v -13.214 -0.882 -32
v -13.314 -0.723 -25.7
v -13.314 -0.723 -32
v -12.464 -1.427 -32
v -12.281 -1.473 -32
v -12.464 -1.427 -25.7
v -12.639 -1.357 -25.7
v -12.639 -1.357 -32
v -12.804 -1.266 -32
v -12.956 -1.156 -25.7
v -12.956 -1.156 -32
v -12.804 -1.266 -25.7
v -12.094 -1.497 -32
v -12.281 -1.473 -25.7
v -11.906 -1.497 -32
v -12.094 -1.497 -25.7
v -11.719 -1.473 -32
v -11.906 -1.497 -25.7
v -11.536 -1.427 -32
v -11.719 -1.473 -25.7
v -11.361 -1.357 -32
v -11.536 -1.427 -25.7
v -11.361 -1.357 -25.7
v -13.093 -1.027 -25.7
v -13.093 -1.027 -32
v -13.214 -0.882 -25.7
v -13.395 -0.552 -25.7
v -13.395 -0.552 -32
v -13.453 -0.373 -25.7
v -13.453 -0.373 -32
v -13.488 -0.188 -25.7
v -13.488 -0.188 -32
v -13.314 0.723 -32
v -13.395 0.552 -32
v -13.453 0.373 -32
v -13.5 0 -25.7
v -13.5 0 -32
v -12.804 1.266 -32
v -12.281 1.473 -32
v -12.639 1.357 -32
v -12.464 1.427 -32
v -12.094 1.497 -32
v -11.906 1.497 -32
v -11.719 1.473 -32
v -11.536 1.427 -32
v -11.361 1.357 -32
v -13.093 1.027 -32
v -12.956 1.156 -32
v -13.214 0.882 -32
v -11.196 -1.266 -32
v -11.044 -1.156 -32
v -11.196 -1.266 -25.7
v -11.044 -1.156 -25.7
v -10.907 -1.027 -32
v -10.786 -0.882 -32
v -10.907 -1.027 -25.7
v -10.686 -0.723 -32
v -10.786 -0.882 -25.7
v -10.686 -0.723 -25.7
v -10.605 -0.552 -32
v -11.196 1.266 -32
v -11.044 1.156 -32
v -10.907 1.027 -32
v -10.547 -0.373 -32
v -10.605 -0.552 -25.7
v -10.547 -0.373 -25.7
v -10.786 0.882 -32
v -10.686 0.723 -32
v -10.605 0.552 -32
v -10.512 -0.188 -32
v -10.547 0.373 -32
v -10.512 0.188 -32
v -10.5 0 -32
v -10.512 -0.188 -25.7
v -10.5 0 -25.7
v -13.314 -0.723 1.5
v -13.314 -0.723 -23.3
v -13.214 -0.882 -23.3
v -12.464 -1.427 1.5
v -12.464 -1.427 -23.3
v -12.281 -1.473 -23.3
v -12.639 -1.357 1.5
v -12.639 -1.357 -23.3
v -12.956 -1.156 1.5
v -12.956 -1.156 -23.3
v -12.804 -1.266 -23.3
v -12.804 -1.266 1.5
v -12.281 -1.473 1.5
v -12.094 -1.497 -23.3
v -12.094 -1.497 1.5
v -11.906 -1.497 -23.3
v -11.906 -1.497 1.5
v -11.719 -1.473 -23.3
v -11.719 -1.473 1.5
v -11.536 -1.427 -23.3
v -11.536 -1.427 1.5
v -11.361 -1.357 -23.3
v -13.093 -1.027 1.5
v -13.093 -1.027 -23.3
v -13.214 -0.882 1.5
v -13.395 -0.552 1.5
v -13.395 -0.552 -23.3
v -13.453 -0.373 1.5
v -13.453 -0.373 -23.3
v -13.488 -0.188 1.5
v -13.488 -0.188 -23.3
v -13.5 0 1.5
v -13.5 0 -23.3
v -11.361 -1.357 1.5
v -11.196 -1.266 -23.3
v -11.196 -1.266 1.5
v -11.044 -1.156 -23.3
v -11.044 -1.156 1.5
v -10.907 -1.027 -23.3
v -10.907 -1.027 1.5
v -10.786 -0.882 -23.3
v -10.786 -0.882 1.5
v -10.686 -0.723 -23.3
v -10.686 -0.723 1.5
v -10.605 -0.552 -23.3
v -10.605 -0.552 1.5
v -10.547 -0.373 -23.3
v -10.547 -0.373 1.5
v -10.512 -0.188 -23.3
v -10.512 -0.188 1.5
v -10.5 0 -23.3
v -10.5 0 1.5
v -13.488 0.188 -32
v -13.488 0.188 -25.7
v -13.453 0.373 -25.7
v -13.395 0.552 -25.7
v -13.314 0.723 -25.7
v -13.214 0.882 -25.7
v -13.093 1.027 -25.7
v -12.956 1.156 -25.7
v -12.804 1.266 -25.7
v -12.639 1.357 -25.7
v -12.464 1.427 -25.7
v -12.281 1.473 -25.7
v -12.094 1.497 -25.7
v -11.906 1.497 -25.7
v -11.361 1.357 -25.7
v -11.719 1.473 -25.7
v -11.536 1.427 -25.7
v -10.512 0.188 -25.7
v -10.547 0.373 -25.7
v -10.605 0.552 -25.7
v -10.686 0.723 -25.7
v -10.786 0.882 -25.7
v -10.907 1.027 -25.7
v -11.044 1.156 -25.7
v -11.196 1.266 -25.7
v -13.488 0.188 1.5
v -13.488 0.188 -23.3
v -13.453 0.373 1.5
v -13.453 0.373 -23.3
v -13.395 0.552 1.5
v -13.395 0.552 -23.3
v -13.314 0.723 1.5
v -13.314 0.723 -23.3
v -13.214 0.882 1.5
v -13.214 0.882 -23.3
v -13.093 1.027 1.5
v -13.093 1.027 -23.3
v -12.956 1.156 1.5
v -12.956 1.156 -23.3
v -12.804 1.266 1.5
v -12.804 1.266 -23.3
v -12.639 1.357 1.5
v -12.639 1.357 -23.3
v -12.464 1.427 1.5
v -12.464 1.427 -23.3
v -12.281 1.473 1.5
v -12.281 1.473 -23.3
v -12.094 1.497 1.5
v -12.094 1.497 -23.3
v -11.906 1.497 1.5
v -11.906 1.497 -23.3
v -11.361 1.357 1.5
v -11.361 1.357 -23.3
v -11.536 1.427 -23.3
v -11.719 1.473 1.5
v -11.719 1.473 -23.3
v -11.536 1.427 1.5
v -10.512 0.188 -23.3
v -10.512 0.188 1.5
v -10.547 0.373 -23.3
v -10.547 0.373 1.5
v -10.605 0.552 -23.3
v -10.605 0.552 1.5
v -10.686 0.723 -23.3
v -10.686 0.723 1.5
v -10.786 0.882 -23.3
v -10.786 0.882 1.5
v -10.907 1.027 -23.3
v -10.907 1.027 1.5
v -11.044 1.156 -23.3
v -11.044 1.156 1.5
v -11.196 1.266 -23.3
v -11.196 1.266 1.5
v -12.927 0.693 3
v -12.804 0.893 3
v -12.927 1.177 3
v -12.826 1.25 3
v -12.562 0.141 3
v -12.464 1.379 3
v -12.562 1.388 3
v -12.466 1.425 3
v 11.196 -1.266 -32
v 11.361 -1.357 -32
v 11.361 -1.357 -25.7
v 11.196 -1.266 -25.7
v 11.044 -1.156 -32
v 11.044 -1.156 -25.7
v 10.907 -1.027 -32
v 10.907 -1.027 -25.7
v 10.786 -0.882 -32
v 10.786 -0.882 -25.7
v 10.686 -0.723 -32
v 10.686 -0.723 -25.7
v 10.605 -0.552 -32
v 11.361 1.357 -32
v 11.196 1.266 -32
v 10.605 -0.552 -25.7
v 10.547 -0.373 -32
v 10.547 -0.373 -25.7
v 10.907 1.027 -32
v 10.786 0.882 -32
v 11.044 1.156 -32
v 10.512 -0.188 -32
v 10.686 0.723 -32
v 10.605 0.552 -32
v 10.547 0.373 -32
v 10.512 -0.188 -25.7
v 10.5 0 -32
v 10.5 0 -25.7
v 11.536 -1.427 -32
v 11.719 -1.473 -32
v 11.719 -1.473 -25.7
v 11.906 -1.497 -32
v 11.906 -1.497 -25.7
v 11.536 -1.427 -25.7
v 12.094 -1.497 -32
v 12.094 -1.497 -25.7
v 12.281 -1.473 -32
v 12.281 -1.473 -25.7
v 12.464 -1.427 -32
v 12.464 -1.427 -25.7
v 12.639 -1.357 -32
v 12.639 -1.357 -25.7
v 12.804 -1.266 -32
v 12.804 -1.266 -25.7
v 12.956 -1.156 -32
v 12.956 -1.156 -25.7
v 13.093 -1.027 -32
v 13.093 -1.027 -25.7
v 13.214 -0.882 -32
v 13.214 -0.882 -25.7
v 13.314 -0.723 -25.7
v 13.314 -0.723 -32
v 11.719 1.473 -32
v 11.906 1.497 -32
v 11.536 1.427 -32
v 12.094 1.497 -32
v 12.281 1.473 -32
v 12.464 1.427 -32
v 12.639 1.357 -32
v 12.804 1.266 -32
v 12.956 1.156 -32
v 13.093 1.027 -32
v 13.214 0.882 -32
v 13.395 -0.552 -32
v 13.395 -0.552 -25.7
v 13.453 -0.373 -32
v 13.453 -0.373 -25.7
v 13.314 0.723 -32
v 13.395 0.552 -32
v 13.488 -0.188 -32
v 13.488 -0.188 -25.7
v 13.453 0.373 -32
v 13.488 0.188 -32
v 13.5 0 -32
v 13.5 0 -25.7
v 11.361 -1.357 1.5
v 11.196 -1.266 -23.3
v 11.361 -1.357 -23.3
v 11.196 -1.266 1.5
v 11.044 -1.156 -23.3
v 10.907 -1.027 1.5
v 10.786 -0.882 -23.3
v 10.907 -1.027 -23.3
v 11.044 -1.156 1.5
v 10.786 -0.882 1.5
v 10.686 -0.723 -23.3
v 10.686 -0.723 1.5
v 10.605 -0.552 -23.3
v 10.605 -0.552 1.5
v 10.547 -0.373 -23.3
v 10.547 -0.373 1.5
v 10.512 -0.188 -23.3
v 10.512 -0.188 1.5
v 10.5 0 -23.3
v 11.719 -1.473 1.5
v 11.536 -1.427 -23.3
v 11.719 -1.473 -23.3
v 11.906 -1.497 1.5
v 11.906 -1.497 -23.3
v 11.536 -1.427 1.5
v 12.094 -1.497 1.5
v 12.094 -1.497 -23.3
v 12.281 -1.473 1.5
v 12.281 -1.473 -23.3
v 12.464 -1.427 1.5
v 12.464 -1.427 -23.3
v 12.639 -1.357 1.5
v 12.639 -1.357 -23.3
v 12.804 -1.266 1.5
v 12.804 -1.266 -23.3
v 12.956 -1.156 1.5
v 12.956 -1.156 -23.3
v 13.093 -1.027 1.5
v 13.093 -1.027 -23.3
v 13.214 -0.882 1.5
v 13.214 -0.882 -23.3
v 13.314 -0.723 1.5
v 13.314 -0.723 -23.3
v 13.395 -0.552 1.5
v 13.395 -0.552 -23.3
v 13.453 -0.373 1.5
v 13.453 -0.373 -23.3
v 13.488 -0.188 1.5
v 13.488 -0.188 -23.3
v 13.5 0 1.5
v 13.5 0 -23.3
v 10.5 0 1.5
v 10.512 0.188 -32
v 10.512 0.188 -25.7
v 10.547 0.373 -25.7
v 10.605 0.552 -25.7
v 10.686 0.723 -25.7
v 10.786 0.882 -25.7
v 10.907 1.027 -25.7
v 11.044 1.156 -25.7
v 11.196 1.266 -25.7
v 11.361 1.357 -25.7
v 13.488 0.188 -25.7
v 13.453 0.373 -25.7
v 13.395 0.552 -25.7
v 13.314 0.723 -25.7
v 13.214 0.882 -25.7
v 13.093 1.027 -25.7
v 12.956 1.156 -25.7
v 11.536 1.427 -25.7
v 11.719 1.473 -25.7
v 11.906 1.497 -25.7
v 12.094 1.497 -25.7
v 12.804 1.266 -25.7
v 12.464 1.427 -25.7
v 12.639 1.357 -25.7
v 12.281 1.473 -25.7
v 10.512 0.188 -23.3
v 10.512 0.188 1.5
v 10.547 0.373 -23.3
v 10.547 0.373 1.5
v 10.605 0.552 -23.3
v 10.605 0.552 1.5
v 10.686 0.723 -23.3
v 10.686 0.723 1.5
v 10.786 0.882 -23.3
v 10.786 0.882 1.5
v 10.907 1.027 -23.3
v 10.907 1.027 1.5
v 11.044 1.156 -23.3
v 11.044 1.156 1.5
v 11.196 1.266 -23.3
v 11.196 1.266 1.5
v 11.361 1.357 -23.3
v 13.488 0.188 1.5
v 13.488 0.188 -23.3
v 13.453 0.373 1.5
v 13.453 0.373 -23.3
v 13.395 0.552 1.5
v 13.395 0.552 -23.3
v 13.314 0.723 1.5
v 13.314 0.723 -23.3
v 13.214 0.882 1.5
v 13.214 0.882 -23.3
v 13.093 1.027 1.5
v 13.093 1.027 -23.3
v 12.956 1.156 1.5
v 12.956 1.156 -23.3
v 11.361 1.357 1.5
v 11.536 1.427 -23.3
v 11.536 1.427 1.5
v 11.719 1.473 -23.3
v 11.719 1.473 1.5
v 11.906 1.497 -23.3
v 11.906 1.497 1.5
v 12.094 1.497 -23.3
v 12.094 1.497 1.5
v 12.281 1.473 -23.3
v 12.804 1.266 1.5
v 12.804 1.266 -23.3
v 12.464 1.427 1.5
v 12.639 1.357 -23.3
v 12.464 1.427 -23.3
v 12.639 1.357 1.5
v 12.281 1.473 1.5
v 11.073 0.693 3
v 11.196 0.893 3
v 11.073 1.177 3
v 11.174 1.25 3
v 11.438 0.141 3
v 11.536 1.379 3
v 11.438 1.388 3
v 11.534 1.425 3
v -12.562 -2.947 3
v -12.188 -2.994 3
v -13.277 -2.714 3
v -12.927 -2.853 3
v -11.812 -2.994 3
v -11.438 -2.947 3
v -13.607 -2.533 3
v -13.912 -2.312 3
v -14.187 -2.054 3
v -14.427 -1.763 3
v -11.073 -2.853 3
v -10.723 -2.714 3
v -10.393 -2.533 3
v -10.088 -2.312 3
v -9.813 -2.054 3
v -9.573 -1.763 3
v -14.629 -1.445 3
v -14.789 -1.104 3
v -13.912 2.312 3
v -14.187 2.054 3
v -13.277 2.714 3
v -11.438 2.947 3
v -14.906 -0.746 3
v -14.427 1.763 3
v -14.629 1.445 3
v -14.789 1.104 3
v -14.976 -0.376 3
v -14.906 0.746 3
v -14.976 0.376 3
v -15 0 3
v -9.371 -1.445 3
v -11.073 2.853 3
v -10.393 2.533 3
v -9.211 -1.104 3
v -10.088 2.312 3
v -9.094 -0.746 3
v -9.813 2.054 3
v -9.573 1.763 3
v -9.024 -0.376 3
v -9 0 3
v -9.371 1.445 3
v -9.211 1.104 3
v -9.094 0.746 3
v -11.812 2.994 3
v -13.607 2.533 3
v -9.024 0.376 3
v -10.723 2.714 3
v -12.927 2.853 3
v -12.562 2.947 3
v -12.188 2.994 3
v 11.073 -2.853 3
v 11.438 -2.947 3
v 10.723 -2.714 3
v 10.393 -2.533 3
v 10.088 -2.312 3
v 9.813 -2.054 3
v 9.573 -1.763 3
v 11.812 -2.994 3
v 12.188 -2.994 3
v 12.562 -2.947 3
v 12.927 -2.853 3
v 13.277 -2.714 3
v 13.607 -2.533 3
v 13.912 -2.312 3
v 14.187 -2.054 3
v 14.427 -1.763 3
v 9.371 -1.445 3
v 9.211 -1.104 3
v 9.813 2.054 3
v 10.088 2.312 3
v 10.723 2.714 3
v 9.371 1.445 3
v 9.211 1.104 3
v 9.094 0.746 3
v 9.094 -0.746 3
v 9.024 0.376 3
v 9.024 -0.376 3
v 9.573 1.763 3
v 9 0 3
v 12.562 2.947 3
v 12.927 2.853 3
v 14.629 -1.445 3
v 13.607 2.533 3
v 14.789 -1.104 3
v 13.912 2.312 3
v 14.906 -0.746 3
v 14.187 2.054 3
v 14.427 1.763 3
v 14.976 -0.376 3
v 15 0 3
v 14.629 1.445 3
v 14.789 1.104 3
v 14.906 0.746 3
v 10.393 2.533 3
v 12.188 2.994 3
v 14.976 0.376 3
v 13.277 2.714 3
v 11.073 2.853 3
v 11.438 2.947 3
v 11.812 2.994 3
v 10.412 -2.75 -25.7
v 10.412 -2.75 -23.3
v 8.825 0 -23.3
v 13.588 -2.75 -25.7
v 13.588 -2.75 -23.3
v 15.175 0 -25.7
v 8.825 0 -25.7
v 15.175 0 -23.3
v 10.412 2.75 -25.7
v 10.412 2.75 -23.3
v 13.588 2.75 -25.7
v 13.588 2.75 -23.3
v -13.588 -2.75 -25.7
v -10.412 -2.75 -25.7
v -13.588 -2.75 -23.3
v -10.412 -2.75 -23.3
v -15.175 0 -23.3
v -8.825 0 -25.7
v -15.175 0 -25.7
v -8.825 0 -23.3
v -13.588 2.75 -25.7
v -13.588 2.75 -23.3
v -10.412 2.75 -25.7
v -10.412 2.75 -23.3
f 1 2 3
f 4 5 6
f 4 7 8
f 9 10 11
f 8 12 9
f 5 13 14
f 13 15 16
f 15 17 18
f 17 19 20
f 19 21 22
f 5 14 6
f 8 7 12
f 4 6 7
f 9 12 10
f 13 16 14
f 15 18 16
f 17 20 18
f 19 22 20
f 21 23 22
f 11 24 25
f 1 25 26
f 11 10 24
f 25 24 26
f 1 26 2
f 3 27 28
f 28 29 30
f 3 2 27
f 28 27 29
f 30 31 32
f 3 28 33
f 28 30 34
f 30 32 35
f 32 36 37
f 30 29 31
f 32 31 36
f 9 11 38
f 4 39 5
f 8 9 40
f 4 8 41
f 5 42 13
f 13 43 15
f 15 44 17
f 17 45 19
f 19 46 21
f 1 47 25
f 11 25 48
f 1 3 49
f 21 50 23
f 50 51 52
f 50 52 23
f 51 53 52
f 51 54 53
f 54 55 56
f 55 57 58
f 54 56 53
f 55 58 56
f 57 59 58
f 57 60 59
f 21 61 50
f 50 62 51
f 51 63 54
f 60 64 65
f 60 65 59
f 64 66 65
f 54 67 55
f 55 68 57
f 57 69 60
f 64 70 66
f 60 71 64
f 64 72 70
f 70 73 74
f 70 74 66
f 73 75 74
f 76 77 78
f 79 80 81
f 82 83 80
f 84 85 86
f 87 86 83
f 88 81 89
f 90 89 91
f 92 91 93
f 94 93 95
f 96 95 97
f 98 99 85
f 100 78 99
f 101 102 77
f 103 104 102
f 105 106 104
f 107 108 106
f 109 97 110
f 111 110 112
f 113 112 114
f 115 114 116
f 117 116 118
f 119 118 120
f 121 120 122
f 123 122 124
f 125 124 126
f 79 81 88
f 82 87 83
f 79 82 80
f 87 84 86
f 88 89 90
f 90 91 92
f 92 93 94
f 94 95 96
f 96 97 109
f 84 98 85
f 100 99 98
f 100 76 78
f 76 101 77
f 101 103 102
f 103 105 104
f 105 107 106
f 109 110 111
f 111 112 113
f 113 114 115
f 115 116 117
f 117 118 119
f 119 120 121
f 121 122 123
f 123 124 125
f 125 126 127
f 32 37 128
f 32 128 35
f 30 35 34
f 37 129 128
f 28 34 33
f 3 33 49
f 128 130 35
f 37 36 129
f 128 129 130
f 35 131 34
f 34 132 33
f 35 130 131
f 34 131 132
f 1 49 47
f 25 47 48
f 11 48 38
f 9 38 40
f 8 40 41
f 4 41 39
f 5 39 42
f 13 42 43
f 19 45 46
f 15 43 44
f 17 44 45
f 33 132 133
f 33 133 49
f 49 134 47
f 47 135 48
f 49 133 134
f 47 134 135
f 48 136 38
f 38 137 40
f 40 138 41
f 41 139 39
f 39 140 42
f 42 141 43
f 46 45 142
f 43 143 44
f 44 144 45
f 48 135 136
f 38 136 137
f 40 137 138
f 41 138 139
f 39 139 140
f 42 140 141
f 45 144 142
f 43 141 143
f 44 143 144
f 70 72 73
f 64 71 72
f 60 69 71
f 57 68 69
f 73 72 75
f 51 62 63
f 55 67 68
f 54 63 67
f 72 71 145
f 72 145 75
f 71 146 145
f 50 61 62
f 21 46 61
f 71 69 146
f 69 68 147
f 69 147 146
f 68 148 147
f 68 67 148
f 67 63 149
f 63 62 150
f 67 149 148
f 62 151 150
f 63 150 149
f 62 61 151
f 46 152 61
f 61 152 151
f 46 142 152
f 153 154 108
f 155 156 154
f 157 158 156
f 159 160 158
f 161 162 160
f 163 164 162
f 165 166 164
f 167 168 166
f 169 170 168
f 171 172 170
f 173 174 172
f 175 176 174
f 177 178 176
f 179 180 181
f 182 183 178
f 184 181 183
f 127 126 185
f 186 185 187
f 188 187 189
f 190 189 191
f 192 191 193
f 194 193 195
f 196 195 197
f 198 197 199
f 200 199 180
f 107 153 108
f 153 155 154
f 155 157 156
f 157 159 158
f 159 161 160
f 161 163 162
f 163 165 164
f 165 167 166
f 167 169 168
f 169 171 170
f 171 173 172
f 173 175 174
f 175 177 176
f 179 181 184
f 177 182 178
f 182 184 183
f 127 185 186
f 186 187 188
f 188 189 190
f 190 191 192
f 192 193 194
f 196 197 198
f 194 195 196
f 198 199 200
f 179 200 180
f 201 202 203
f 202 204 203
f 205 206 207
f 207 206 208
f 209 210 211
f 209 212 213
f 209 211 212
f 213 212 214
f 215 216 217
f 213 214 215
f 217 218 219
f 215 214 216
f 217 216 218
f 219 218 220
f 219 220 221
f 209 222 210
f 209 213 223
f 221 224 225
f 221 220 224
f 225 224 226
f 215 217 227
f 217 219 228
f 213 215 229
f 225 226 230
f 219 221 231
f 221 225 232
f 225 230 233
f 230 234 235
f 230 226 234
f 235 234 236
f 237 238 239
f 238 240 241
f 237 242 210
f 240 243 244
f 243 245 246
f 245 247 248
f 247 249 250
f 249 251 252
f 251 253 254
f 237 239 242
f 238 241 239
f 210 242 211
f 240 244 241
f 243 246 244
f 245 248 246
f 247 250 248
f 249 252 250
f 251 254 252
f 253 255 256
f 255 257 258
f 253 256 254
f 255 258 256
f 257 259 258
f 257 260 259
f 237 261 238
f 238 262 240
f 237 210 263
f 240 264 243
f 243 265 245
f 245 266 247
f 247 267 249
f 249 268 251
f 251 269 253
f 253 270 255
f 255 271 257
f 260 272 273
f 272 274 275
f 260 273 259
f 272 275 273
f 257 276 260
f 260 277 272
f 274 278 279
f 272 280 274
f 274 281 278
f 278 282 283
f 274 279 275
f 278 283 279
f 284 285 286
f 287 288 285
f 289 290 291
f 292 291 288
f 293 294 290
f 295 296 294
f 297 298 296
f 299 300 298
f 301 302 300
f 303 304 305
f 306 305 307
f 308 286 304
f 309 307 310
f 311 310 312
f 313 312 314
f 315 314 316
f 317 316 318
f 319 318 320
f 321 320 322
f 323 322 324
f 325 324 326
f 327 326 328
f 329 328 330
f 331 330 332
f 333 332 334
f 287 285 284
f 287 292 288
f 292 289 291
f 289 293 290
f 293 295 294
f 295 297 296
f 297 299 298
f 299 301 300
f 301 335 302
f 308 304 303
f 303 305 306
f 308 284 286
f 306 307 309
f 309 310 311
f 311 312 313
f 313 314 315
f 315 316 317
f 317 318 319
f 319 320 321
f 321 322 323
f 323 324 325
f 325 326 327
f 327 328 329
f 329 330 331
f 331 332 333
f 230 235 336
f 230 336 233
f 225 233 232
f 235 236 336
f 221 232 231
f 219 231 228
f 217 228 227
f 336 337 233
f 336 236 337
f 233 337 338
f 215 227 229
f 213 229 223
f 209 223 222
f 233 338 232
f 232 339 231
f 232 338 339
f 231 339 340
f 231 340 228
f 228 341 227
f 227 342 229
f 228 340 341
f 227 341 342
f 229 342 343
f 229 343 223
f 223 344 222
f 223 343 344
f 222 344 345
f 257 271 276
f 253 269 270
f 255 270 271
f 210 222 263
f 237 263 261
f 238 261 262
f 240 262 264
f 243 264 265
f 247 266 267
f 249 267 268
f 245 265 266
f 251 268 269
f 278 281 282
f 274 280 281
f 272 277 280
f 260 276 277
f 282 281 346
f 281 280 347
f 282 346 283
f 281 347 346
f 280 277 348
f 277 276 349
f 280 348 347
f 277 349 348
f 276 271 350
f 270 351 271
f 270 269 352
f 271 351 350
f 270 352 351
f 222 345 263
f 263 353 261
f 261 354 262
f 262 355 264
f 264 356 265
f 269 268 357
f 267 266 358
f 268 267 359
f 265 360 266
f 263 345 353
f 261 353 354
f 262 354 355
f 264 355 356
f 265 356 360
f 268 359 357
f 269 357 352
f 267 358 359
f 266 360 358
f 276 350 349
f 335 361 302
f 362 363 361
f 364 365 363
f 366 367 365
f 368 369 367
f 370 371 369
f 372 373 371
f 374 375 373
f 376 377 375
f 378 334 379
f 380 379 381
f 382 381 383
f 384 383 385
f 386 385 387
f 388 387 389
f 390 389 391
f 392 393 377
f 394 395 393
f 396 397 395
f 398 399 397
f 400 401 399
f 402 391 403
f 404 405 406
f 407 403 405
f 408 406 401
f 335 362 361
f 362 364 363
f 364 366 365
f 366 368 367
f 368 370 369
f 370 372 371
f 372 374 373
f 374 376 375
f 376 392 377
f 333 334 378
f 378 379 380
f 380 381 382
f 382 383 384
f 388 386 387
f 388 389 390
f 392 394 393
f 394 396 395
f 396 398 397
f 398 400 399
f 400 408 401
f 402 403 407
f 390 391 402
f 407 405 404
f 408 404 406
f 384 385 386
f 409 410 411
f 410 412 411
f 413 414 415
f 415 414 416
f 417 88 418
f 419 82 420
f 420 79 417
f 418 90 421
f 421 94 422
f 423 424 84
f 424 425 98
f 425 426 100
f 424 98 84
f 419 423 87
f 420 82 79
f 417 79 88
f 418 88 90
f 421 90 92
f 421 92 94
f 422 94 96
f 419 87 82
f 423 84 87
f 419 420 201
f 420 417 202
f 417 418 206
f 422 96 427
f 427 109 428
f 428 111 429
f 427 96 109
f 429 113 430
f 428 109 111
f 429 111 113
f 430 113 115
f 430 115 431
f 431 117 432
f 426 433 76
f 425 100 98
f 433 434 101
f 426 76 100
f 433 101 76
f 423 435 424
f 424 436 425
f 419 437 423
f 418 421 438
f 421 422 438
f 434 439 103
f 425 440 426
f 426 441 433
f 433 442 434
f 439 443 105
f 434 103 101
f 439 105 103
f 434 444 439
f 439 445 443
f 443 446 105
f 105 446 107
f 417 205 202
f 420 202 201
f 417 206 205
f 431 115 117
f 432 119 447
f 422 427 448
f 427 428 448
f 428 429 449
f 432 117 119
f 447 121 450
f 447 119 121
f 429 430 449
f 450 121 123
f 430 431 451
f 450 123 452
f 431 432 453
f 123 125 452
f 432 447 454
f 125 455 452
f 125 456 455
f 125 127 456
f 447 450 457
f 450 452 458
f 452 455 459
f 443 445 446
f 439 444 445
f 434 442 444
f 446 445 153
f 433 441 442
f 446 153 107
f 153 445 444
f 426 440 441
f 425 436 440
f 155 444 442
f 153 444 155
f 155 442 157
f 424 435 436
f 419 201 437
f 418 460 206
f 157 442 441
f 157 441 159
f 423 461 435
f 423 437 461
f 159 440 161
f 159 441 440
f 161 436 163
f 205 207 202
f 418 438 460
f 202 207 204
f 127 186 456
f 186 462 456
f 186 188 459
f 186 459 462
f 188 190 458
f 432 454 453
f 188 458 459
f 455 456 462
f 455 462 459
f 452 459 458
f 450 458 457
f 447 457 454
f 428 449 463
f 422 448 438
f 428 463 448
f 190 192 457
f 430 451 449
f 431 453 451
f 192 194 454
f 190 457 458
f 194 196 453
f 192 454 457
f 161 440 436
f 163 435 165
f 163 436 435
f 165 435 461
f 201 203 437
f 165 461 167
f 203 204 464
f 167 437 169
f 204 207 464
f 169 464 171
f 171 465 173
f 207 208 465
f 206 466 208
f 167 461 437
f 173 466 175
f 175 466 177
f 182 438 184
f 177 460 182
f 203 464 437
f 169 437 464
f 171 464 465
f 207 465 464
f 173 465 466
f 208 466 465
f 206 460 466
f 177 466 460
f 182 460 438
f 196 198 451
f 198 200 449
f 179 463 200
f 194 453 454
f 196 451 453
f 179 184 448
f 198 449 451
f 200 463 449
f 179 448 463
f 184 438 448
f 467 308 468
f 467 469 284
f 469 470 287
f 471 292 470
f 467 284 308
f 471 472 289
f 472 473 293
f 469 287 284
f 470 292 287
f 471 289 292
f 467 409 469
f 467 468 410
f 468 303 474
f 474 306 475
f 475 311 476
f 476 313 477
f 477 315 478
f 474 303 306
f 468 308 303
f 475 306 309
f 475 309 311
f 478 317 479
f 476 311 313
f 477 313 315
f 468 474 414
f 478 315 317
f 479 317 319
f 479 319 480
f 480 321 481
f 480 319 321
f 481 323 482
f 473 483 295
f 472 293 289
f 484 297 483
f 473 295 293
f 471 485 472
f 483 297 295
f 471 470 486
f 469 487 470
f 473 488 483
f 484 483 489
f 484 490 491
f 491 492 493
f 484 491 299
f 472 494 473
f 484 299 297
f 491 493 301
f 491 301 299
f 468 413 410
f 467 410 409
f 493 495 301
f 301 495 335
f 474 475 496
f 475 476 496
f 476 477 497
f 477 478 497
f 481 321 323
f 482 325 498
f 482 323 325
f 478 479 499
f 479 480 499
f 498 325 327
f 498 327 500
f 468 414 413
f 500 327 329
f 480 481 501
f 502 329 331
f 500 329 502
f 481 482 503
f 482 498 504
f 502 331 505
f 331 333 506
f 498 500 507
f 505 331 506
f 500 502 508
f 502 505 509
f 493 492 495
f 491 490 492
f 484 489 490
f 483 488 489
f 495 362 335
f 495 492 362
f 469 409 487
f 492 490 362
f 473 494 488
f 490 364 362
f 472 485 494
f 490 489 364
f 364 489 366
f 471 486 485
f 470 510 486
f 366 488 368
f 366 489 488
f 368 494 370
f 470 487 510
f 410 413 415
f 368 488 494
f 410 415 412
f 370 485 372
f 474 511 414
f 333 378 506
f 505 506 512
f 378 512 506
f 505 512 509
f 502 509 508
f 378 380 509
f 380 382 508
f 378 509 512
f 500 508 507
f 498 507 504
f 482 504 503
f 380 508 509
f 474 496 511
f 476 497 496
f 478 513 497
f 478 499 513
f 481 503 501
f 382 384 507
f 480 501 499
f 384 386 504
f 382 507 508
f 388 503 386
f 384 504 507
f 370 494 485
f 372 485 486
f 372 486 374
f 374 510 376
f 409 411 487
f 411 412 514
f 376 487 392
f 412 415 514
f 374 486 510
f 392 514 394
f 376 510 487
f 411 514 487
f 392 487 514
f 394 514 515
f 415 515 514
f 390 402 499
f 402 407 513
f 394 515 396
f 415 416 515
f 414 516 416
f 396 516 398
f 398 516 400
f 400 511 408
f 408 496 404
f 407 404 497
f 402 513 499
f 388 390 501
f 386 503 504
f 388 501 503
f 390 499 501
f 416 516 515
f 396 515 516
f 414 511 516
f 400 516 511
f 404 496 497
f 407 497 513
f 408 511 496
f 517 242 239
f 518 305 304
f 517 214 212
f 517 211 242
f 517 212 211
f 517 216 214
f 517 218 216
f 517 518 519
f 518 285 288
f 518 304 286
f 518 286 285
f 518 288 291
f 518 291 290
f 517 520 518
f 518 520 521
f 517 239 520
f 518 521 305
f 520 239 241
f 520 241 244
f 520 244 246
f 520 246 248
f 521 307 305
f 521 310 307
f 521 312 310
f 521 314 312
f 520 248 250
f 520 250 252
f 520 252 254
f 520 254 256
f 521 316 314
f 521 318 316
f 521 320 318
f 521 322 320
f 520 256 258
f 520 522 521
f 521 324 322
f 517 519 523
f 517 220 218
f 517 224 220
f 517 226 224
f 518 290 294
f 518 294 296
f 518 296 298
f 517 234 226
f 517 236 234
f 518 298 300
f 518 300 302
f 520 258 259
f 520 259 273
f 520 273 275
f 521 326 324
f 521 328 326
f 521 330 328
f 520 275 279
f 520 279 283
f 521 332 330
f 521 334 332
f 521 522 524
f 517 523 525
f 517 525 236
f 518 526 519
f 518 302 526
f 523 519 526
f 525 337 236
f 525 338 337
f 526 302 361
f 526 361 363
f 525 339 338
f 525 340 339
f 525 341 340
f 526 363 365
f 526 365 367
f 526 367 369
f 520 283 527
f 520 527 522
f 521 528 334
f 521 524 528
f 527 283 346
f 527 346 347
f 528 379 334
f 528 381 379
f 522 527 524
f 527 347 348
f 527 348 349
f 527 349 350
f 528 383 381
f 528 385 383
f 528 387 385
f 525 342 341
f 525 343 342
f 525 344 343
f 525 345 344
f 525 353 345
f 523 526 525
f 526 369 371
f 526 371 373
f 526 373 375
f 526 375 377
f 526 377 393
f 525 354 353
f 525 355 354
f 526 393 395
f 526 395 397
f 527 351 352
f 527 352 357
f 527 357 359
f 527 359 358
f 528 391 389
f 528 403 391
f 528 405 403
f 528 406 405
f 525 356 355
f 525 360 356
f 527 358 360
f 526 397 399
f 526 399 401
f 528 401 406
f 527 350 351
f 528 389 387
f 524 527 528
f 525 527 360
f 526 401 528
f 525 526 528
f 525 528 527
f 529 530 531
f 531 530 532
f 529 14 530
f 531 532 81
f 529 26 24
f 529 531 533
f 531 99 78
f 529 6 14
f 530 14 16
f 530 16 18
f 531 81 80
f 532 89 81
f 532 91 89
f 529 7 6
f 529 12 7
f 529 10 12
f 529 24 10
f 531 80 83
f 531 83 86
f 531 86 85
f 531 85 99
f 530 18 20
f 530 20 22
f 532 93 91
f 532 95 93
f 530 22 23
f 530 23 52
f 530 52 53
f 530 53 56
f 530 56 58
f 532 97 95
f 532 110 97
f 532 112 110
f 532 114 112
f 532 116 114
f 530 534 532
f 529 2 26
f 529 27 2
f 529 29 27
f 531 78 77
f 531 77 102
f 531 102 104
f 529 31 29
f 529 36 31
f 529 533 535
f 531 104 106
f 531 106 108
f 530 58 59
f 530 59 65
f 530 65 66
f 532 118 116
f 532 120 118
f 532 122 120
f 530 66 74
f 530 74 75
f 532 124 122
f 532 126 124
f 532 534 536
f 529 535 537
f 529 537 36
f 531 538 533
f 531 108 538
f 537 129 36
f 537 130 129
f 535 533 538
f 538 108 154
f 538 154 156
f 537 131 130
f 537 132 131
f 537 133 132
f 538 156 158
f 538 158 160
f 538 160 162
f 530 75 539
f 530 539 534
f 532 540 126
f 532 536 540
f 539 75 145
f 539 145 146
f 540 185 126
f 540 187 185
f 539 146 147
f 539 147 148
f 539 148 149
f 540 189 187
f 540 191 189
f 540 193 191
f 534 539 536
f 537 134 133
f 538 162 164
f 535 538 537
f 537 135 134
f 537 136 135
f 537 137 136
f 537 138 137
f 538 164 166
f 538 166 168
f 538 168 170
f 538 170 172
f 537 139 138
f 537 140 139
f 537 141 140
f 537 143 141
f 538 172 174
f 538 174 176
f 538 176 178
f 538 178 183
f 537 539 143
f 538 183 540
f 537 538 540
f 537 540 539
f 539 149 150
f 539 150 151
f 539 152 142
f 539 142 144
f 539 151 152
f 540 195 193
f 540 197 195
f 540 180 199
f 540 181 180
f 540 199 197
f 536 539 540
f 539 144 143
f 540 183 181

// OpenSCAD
$fn = 50;

difference() {
	union() {
		translate(v = [-12, 0, 3]) {
			rotate(a = [0, 0, 0]) {
				difference() {
					union() {
						translate(v = [0, 0, -35.0]) {
							cylinder(h = 35, r = 1.5);
						}
						translate(v = [0, 0, -1.5]) {
							cylinder(h = 1.5, r1 = 1.5, r2 = 3);
						}
					}
					union();
				}
			}
		}
		translate(v = [-12, 0, -25.7]) {
			rotate(a = [0, 0, 0]) {
				difference() {
					union() {
						linear_extrude(height = 2.4) {
							polygon(points = [[3.1754264805429417, 0.0], [1.5877132402714713, 2.75], [-1.5877132402714702, 2.7500000000000004], [-3.1754264805429417, 3.888775875324659e-16], [-1.5877132402714722, -2.7499999999999996], [1.5877132402714687, -2.7500000000000013]]);
						}
					}
					union();
				}
			}
		}
		translate(v = [12, 0, 3]) {
			rotate(a = [0, 0, 0]) {
				difference() {
					union() {
						translate(v = [0, 0, -35.0]) {
							cylinder(h = 35, r = 1.5);
						}
						translate(v = [0, 0, -1.5]) {
							cylinder(h = 1.5, r1 = 1.5, r2 = 3);
						}
					}
					union();
				}
			}
		}
		translate(v = [12, 0, -25.7]) {
			rotate(a = [0, 0, 0]) {
				difference() {
					union() {
						linear_extrude(height = 2.4) {
							polygon(points = [[3.1754264805429417, 0.0], [1.5877132402714713, 2.75], [-1.5877132402714702, 2.7500000000000004], [-3.1754264805429417, 3.888775875324659e-16], [-1.5877132402714722, -2.7499999999999996], [1.5877132402714687, -2.7500000000000013]]);
						}
					}
					union();
				}
			}
		}
	}
	union();
}
